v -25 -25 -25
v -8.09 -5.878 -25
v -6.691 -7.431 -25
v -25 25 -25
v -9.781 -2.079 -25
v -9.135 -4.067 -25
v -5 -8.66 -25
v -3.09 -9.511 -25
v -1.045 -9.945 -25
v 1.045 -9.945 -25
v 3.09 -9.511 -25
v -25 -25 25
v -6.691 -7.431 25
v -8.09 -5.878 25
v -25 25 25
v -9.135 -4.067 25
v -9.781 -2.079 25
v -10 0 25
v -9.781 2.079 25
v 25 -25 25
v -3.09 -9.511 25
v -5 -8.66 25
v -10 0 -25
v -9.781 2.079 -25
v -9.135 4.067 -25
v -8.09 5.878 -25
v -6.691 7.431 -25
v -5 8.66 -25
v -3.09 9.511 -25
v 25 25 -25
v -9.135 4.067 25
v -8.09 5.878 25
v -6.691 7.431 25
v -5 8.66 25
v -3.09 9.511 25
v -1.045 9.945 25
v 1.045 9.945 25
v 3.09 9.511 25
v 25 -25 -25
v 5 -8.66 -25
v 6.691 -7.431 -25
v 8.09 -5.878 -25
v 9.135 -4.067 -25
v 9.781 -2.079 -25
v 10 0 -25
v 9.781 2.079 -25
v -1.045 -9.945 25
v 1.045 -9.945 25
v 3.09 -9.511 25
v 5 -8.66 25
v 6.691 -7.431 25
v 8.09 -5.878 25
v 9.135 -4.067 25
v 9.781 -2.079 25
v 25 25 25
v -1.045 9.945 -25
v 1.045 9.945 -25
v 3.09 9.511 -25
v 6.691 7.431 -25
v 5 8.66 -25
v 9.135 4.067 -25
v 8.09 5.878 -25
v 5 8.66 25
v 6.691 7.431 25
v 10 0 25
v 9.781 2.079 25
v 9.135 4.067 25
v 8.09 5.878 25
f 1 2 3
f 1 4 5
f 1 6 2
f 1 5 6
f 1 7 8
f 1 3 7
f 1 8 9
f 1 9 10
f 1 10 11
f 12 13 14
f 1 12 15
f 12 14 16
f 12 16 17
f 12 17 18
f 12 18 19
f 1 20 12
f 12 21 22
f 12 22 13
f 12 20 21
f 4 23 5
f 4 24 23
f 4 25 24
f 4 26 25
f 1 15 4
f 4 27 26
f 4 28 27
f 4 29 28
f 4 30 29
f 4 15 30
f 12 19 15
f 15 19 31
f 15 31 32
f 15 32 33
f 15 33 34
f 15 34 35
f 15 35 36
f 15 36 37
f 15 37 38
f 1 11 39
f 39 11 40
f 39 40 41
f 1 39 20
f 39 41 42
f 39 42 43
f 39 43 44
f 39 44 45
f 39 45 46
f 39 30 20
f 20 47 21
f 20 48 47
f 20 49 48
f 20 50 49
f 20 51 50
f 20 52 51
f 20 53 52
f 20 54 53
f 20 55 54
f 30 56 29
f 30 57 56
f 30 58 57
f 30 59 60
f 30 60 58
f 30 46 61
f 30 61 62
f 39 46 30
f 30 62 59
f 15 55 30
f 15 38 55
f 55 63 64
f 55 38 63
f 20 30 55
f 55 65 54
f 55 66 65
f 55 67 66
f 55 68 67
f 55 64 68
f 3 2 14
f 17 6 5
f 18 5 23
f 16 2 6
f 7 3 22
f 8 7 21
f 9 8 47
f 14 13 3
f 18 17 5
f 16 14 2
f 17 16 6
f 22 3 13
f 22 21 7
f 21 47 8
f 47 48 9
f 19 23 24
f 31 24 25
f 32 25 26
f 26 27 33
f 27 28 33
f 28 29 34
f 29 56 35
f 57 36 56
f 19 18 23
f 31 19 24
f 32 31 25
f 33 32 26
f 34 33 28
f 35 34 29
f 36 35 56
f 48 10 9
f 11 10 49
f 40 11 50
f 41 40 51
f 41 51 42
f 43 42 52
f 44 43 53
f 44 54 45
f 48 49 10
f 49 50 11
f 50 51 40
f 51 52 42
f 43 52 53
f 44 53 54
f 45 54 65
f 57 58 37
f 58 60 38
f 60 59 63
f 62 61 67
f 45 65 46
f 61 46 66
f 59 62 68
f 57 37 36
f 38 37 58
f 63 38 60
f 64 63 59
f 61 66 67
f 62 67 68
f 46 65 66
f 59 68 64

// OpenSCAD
difference() {
    cube([50, 50, 50], center = true);
    cylinder(d = 20, h = 50, center = true);
}
